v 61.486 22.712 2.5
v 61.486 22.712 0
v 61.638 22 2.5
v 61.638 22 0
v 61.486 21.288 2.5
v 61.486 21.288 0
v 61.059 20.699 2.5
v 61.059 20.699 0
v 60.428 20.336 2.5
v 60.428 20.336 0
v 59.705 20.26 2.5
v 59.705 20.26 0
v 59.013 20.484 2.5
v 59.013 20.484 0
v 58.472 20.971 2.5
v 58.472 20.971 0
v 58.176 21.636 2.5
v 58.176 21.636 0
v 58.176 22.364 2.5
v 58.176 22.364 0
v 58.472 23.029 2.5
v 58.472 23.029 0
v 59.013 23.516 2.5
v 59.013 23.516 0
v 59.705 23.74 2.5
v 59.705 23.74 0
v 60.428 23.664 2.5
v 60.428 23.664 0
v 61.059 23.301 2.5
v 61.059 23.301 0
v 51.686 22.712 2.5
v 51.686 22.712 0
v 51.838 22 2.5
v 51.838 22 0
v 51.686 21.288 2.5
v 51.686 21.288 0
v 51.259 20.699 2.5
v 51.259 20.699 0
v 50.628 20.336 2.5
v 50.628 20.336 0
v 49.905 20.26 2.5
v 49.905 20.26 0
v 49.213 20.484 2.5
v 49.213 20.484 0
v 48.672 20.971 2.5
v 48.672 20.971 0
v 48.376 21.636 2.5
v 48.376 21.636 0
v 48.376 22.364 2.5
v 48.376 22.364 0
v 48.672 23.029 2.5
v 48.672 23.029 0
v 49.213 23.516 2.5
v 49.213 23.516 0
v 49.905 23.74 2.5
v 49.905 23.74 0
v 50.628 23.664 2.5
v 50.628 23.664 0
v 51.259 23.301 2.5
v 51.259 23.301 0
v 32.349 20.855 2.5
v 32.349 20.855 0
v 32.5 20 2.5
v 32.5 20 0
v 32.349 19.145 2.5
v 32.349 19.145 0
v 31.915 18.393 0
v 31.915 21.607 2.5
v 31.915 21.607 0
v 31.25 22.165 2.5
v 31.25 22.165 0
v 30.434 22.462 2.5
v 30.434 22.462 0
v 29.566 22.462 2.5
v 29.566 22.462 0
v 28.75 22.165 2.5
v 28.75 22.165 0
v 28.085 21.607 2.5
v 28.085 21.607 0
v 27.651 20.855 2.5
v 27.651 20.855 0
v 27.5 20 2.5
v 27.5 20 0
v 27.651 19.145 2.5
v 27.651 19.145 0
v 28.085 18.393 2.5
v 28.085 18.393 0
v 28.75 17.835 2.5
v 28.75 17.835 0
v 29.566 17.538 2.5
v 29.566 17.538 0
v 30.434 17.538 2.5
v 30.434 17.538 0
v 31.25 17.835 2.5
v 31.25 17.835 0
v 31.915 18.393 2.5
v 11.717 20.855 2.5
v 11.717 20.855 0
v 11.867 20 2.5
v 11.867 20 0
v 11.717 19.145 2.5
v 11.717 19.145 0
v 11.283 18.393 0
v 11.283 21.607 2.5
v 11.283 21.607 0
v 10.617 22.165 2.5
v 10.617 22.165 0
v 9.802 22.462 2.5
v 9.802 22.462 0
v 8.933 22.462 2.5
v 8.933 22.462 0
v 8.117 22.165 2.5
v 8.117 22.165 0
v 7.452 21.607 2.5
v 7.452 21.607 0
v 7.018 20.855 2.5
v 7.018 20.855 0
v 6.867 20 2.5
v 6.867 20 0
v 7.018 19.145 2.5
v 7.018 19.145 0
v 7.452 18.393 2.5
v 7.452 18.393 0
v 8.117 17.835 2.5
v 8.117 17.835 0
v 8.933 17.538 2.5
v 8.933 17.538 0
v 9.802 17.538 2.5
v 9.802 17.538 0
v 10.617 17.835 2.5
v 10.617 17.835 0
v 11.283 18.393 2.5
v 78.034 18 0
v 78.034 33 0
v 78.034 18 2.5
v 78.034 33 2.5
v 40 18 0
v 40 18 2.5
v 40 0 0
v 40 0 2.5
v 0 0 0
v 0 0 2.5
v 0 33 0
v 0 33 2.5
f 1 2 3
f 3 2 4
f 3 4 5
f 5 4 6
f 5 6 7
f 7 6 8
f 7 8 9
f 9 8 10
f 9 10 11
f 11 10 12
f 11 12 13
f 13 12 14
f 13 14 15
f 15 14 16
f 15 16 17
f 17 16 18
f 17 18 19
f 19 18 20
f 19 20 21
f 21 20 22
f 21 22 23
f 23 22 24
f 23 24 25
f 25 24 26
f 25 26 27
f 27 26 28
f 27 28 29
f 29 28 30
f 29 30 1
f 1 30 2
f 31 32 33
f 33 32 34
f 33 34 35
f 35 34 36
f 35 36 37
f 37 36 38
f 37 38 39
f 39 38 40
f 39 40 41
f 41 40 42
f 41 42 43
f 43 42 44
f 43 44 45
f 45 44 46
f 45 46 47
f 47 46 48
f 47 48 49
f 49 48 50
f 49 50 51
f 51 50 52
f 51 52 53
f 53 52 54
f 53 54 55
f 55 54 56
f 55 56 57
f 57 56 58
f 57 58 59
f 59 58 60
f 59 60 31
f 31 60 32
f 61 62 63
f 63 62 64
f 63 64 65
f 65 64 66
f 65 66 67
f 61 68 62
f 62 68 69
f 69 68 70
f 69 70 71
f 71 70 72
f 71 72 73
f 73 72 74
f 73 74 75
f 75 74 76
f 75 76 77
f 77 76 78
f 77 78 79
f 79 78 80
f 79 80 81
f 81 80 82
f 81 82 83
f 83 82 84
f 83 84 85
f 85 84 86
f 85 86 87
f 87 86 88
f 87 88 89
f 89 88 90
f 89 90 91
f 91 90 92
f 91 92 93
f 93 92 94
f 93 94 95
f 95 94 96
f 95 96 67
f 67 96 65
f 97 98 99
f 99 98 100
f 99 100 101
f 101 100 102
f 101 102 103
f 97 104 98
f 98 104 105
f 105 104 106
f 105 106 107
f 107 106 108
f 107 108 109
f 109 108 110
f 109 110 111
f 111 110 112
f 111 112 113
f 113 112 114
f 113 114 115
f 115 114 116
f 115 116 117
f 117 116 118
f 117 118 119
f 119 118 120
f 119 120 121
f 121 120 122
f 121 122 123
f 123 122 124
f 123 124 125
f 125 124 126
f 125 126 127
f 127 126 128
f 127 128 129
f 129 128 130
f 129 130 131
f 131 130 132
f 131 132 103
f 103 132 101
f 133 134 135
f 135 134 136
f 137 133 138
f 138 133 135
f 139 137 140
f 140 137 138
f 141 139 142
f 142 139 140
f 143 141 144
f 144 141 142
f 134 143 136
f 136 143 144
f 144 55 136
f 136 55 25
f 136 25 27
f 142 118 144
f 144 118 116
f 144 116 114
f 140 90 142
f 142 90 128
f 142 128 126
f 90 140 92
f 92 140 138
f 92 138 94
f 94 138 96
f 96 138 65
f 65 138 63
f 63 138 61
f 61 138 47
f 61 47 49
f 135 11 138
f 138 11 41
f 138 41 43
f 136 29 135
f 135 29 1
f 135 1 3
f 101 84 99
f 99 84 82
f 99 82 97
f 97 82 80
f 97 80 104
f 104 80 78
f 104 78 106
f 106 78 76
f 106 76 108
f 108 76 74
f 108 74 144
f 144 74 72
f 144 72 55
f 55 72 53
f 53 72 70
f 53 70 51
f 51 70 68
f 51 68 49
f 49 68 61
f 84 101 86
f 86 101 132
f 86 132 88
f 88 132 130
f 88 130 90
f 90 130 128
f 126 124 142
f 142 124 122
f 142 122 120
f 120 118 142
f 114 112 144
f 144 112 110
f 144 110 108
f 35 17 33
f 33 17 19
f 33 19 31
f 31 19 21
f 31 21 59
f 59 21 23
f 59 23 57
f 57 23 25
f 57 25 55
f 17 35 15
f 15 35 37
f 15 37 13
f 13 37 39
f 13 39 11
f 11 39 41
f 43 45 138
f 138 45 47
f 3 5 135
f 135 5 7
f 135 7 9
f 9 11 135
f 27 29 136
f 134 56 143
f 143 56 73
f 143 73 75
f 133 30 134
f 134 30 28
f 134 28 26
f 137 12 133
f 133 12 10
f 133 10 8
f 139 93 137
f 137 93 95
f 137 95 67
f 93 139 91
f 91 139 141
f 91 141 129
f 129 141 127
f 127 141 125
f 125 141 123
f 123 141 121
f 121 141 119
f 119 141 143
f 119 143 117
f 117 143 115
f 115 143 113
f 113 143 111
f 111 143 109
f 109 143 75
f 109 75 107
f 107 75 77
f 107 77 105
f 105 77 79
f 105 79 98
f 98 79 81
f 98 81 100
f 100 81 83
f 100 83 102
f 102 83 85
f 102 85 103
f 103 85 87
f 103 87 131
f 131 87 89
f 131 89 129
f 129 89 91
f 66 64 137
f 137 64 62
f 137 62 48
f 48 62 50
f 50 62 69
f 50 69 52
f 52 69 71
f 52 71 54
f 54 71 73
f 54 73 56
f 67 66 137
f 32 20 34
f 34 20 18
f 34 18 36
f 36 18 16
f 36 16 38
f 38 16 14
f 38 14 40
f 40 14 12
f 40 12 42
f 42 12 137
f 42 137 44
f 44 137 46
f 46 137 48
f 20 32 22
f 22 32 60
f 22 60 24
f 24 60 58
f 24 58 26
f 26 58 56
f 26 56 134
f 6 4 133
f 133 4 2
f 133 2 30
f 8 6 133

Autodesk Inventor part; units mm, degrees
ref_plane "YZ Plane" through (0, 0, 0) normal (1, 0, 0) x (0, 1, 0)
ref_plane "XZ Plane" through (0, 0, 0) normal (0, 1, 0) x (-1, 0, 0)
ref_plane "XY Plane" through (0, 0, 0) normal (0, 0, 1) x (1, 0, 0)
sketch "Sketch1" plane through (0, 0, 0) normal (0, 0, 1) x (1, 0, 0)
  line L0 (0, 0) -> (0, 33)
  line L1 (0, 33) -> (40, 33)
  line L2 (40, 33) -> (78.0336, 33)
  line L3 (78.0336, 18) -> (40, 18)
  line L4 (40, 18) -> (40, 0)
  line L5 (40, 0) -> (0, 0)
  circle A0 centre (9.3675, 20) radius 2.5
  circle A1 centre (30, 20) radius 2.5
  circle A2 centre (50.0876, 22) radius 1.75
  circle A3 centre (59.8876, 22) radius 1.75
  line L6 (40, 18) -> (55, 18)
  line L7 (78.0336, 18) -> (78.0336, 33)
  point P0 (0, 16.5)
  dimension "d0" = 40
  dimension "d1" = 33
  dimension "d2" = 5
  dimension "d3" = 5
  dimension "d4" = 10
  dimension "d5" = 10
  dimension "d6" = 20
  dimension "d7" = 20
  dimension "d9" = 3.5
  dimension "d10" = 3.5
  dimension "d11" = 9.8
  dimension "d12" = 4
  dimension "d15" = 15
extrude "Extrusion1" add sketch "Sketch1" along normal blind 2.5
sketch "Sketch3" plane through (0, 0, 2.5) normal (0, 0, 1) x (1, 0, 0)
  point P0 (0, 0)
sketch "Sketch4" plane through (0, 0, 2.5) normal (0, 0, 1) x (1, 0, 0)
  point P0 (0, 0)
equation "\"BendRadius\" = Thickness"
equation "\"BendReliefWidth\" = Thickness"
equation "\"BendReliefDepth\" = 0.5 * Thickness"
equation "\"CornerReliefSize\" = 4 * Thickness"
equation "\"MinimumRemnant\" = 2 * Thickness"
equation "\"TransitionRadius\" = BendRadius"
equation "\"JacobiRadiusSize\" = BendRadius"
equation "\"GapSize\" = Thickness"
equation "\"Thickness\" = 0.5"
